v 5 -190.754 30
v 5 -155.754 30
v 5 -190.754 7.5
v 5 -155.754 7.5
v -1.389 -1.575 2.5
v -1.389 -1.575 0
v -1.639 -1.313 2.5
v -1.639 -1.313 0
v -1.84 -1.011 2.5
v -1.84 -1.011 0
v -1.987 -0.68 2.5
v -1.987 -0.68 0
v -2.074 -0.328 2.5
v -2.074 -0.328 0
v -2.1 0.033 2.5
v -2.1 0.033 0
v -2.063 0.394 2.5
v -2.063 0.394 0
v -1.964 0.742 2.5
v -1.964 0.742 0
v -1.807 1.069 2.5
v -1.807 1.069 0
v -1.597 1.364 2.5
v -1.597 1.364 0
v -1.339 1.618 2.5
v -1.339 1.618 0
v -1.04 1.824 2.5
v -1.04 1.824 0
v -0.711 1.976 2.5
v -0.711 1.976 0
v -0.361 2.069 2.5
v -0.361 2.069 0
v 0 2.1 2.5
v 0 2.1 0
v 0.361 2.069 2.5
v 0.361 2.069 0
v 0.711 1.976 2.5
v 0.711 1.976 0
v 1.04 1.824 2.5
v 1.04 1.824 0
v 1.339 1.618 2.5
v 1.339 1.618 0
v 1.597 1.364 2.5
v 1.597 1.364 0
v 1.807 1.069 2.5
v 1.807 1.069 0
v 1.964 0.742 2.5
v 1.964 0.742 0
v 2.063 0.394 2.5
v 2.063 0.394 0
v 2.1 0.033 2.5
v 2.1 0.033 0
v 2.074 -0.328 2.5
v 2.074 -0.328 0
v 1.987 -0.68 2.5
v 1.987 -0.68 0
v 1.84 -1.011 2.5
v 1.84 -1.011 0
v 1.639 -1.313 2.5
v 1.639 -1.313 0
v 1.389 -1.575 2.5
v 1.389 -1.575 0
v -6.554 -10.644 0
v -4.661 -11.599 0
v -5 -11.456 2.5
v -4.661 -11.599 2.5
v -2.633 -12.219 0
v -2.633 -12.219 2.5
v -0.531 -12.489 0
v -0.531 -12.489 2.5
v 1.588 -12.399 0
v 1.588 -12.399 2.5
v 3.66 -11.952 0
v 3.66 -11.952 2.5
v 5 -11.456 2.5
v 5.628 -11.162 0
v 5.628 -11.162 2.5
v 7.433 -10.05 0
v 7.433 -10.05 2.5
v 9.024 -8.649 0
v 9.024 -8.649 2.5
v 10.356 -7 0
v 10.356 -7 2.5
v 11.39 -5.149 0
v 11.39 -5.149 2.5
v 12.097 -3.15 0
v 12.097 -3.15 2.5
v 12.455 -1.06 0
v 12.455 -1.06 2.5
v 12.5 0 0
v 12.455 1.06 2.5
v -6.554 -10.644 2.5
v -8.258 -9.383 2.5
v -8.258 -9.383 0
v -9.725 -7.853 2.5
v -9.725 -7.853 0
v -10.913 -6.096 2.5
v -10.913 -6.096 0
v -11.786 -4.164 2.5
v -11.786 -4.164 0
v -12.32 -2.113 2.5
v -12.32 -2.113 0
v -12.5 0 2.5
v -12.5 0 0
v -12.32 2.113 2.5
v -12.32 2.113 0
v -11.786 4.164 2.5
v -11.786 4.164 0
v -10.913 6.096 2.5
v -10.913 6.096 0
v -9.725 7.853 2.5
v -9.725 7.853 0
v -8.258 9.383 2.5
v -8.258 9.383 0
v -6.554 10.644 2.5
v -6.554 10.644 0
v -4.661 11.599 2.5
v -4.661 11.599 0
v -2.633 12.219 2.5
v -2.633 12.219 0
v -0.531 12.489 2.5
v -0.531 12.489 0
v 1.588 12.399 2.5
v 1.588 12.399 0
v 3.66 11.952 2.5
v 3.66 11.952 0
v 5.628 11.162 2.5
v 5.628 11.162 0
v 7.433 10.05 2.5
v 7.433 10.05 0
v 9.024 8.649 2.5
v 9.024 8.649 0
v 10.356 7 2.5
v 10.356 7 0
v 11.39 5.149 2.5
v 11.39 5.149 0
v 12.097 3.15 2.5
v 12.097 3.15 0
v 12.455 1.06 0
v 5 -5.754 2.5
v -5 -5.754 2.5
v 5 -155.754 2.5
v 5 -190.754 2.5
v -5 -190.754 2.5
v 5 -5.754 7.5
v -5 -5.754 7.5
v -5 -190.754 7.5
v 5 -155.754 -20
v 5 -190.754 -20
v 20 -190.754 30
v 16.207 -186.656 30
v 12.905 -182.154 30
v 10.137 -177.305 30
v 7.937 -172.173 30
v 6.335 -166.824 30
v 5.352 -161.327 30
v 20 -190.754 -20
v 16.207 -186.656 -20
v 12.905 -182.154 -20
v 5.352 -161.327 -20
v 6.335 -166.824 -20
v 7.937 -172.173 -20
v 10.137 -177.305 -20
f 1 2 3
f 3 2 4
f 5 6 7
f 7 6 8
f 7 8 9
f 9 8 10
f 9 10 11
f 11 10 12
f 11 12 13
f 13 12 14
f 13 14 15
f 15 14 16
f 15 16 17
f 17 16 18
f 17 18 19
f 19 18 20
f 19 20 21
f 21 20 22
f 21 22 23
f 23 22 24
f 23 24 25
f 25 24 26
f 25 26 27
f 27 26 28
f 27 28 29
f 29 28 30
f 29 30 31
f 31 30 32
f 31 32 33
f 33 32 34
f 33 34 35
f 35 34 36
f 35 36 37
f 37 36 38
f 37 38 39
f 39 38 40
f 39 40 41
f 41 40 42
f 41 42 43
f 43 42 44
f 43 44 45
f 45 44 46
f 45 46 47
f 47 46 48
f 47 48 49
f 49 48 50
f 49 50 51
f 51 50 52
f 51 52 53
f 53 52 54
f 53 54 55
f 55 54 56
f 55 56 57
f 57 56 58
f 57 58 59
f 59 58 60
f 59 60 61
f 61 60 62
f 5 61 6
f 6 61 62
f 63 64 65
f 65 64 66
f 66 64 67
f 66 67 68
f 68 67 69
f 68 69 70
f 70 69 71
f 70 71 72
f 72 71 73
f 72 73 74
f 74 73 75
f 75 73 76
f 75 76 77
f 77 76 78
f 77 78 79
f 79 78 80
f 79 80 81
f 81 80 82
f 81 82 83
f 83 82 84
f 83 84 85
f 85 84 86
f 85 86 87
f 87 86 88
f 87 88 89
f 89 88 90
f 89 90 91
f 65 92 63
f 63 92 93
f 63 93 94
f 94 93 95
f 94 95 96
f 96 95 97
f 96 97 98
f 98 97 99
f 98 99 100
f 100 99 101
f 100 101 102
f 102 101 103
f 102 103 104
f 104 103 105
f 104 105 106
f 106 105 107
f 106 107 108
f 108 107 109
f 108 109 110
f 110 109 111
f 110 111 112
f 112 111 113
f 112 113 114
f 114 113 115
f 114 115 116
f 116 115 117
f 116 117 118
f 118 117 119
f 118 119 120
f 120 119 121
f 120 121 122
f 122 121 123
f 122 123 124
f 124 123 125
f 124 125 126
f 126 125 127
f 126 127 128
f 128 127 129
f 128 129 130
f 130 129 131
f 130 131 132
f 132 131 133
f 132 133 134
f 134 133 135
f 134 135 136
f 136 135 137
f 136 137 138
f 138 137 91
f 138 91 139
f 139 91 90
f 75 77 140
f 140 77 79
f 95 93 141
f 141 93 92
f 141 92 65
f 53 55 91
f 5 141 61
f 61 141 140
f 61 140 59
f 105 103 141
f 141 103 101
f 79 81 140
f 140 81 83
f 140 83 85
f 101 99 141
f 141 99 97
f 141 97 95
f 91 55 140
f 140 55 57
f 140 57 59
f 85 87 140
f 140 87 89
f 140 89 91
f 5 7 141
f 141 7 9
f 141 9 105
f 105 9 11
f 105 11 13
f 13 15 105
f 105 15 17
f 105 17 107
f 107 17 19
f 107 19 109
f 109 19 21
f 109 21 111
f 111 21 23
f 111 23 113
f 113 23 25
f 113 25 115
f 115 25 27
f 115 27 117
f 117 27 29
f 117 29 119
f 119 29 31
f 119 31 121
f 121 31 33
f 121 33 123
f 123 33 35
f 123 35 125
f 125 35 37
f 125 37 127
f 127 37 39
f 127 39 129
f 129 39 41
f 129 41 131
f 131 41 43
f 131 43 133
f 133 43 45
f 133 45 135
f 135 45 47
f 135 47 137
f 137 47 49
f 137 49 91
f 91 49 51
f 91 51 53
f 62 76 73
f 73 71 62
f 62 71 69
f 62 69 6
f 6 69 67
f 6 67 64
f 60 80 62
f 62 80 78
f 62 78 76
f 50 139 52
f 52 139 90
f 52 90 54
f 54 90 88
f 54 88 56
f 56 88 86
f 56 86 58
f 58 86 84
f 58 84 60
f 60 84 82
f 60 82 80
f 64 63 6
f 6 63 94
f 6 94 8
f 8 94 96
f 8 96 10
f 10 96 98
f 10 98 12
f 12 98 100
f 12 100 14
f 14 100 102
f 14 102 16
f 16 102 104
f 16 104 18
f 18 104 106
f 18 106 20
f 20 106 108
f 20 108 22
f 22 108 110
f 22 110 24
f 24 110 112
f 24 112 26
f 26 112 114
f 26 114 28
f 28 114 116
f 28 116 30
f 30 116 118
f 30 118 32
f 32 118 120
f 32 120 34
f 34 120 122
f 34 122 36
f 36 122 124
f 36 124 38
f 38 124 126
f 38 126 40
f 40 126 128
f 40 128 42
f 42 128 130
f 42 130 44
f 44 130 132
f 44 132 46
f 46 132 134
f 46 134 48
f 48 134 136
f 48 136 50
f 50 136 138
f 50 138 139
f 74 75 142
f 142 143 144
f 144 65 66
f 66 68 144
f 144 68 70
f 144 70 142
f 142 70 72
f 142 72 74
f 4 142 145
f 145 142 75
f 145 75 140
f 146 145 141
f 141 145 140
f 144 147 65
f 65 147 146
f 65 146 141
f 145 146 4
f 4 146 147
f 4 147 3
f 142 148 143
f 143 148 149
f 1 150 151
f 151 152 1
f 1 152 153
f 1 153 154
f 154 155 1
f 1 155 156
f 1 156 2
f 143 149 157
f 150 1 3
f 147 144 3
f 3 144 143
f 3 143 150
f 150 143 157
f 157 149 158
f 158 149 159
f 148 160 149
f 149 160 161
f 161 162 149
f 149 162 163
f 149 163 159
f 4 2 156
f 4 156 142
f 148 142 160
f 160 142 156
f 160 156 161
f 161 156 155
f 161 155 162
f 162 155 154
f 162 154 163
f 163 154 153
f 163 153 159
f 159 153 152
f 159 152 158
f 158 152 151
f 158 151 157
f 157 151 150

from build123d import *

# Parameters (mm, degrees)
SKETCH2_R           = 12.5
BOSS_EXTRUDE1_DEPTH = 2.5
BOSS_EXTRUDE2_DEPTH = 5
BOSS_EXTRUDE3_DEPTH = 15
SKETCH9_W           = 5
SKETCH9_H           = 25
BOSS_EXTRUDE4_DEPTH = 10
CUT_EXTRUDE1_DEPTH  = 142


with BuildPart() as part:
    # Sketch2 → Boss-Extrude1 (new body)
    with BuildSketch(Plane.XY):
        Circle(SKETCH2_R)
        with BuildLine():
            ThreePointArc((1.389019438, -1.575), (0, 2.1), (-1.389019438, -1.575))
            Line((-1.389019438, -1.575), (0, -1.575))
            Line((0, -1.575), (1.389019438, -1.575))
        make_face(mode=Mode.SUBTRACT)
    extrude(amount=BOSS_EXTRUDE1_DEPTH)

    # Sketch4 → Boss-Extrude2 (add)
    with BuildSketch(Plane.XY.offset(2.5)):
        Polygon((-5, -165.75443039), (5, -165.75443039), (5, -5.75443039), (0, -5.75443039), (-5, -5.75443039), align=None)
    extrude(amount=BOSS_EXTRUDE2_DEPTH)

    # Sketch5 → Boss-Extrude3 (add)
    with BuildSketch(Plane(origin=(5, 0, 0), x_dir=(0, 0, -1), z_dir=(1, 0, 0))):
        Polygon((20, -155.75443039), (-5, -155.75443039), (-30, -155.75443039), (-30, -190.75443039), (-5, -190.75443039), (20, -190.75443039), align=None)
    extrude(amount=BOSS_EXTRUDE3_DEPTH)

    # Sketch9 → Boss-Extrude4 (add)
    with BuildSketch(Plane.ZY.offset(5)):
        with Locations((5, -178.25443039)):
            Rectangle(SKETCH9_W, SKETCH9_H)
    extrude(amount=-BOSS_EXTRUDE4_DEPTH)

    # Sketch6 → Cut-Extrude1 (cut)
    with BuildSketch(Plane(origin=(0, 0, -20), x_dir=(-1, 0, 0), z_dir=(0, 0, -1))):
        with BuildLine():
            Line((-5, -155.75443039), (-20, -155.75443039))
            Line((-20, -155.75443039), (-20, -190.75443039))
            ThreePointArc((-20, -190.75443039), (-8.963631912, -174.770016714), (-5, -155.75443039))
        make_face()
    extrude(amount=-CUT_EXTRUDE1_DEPTH, mode=Mode.SUBTRACT)


solid = part.part
